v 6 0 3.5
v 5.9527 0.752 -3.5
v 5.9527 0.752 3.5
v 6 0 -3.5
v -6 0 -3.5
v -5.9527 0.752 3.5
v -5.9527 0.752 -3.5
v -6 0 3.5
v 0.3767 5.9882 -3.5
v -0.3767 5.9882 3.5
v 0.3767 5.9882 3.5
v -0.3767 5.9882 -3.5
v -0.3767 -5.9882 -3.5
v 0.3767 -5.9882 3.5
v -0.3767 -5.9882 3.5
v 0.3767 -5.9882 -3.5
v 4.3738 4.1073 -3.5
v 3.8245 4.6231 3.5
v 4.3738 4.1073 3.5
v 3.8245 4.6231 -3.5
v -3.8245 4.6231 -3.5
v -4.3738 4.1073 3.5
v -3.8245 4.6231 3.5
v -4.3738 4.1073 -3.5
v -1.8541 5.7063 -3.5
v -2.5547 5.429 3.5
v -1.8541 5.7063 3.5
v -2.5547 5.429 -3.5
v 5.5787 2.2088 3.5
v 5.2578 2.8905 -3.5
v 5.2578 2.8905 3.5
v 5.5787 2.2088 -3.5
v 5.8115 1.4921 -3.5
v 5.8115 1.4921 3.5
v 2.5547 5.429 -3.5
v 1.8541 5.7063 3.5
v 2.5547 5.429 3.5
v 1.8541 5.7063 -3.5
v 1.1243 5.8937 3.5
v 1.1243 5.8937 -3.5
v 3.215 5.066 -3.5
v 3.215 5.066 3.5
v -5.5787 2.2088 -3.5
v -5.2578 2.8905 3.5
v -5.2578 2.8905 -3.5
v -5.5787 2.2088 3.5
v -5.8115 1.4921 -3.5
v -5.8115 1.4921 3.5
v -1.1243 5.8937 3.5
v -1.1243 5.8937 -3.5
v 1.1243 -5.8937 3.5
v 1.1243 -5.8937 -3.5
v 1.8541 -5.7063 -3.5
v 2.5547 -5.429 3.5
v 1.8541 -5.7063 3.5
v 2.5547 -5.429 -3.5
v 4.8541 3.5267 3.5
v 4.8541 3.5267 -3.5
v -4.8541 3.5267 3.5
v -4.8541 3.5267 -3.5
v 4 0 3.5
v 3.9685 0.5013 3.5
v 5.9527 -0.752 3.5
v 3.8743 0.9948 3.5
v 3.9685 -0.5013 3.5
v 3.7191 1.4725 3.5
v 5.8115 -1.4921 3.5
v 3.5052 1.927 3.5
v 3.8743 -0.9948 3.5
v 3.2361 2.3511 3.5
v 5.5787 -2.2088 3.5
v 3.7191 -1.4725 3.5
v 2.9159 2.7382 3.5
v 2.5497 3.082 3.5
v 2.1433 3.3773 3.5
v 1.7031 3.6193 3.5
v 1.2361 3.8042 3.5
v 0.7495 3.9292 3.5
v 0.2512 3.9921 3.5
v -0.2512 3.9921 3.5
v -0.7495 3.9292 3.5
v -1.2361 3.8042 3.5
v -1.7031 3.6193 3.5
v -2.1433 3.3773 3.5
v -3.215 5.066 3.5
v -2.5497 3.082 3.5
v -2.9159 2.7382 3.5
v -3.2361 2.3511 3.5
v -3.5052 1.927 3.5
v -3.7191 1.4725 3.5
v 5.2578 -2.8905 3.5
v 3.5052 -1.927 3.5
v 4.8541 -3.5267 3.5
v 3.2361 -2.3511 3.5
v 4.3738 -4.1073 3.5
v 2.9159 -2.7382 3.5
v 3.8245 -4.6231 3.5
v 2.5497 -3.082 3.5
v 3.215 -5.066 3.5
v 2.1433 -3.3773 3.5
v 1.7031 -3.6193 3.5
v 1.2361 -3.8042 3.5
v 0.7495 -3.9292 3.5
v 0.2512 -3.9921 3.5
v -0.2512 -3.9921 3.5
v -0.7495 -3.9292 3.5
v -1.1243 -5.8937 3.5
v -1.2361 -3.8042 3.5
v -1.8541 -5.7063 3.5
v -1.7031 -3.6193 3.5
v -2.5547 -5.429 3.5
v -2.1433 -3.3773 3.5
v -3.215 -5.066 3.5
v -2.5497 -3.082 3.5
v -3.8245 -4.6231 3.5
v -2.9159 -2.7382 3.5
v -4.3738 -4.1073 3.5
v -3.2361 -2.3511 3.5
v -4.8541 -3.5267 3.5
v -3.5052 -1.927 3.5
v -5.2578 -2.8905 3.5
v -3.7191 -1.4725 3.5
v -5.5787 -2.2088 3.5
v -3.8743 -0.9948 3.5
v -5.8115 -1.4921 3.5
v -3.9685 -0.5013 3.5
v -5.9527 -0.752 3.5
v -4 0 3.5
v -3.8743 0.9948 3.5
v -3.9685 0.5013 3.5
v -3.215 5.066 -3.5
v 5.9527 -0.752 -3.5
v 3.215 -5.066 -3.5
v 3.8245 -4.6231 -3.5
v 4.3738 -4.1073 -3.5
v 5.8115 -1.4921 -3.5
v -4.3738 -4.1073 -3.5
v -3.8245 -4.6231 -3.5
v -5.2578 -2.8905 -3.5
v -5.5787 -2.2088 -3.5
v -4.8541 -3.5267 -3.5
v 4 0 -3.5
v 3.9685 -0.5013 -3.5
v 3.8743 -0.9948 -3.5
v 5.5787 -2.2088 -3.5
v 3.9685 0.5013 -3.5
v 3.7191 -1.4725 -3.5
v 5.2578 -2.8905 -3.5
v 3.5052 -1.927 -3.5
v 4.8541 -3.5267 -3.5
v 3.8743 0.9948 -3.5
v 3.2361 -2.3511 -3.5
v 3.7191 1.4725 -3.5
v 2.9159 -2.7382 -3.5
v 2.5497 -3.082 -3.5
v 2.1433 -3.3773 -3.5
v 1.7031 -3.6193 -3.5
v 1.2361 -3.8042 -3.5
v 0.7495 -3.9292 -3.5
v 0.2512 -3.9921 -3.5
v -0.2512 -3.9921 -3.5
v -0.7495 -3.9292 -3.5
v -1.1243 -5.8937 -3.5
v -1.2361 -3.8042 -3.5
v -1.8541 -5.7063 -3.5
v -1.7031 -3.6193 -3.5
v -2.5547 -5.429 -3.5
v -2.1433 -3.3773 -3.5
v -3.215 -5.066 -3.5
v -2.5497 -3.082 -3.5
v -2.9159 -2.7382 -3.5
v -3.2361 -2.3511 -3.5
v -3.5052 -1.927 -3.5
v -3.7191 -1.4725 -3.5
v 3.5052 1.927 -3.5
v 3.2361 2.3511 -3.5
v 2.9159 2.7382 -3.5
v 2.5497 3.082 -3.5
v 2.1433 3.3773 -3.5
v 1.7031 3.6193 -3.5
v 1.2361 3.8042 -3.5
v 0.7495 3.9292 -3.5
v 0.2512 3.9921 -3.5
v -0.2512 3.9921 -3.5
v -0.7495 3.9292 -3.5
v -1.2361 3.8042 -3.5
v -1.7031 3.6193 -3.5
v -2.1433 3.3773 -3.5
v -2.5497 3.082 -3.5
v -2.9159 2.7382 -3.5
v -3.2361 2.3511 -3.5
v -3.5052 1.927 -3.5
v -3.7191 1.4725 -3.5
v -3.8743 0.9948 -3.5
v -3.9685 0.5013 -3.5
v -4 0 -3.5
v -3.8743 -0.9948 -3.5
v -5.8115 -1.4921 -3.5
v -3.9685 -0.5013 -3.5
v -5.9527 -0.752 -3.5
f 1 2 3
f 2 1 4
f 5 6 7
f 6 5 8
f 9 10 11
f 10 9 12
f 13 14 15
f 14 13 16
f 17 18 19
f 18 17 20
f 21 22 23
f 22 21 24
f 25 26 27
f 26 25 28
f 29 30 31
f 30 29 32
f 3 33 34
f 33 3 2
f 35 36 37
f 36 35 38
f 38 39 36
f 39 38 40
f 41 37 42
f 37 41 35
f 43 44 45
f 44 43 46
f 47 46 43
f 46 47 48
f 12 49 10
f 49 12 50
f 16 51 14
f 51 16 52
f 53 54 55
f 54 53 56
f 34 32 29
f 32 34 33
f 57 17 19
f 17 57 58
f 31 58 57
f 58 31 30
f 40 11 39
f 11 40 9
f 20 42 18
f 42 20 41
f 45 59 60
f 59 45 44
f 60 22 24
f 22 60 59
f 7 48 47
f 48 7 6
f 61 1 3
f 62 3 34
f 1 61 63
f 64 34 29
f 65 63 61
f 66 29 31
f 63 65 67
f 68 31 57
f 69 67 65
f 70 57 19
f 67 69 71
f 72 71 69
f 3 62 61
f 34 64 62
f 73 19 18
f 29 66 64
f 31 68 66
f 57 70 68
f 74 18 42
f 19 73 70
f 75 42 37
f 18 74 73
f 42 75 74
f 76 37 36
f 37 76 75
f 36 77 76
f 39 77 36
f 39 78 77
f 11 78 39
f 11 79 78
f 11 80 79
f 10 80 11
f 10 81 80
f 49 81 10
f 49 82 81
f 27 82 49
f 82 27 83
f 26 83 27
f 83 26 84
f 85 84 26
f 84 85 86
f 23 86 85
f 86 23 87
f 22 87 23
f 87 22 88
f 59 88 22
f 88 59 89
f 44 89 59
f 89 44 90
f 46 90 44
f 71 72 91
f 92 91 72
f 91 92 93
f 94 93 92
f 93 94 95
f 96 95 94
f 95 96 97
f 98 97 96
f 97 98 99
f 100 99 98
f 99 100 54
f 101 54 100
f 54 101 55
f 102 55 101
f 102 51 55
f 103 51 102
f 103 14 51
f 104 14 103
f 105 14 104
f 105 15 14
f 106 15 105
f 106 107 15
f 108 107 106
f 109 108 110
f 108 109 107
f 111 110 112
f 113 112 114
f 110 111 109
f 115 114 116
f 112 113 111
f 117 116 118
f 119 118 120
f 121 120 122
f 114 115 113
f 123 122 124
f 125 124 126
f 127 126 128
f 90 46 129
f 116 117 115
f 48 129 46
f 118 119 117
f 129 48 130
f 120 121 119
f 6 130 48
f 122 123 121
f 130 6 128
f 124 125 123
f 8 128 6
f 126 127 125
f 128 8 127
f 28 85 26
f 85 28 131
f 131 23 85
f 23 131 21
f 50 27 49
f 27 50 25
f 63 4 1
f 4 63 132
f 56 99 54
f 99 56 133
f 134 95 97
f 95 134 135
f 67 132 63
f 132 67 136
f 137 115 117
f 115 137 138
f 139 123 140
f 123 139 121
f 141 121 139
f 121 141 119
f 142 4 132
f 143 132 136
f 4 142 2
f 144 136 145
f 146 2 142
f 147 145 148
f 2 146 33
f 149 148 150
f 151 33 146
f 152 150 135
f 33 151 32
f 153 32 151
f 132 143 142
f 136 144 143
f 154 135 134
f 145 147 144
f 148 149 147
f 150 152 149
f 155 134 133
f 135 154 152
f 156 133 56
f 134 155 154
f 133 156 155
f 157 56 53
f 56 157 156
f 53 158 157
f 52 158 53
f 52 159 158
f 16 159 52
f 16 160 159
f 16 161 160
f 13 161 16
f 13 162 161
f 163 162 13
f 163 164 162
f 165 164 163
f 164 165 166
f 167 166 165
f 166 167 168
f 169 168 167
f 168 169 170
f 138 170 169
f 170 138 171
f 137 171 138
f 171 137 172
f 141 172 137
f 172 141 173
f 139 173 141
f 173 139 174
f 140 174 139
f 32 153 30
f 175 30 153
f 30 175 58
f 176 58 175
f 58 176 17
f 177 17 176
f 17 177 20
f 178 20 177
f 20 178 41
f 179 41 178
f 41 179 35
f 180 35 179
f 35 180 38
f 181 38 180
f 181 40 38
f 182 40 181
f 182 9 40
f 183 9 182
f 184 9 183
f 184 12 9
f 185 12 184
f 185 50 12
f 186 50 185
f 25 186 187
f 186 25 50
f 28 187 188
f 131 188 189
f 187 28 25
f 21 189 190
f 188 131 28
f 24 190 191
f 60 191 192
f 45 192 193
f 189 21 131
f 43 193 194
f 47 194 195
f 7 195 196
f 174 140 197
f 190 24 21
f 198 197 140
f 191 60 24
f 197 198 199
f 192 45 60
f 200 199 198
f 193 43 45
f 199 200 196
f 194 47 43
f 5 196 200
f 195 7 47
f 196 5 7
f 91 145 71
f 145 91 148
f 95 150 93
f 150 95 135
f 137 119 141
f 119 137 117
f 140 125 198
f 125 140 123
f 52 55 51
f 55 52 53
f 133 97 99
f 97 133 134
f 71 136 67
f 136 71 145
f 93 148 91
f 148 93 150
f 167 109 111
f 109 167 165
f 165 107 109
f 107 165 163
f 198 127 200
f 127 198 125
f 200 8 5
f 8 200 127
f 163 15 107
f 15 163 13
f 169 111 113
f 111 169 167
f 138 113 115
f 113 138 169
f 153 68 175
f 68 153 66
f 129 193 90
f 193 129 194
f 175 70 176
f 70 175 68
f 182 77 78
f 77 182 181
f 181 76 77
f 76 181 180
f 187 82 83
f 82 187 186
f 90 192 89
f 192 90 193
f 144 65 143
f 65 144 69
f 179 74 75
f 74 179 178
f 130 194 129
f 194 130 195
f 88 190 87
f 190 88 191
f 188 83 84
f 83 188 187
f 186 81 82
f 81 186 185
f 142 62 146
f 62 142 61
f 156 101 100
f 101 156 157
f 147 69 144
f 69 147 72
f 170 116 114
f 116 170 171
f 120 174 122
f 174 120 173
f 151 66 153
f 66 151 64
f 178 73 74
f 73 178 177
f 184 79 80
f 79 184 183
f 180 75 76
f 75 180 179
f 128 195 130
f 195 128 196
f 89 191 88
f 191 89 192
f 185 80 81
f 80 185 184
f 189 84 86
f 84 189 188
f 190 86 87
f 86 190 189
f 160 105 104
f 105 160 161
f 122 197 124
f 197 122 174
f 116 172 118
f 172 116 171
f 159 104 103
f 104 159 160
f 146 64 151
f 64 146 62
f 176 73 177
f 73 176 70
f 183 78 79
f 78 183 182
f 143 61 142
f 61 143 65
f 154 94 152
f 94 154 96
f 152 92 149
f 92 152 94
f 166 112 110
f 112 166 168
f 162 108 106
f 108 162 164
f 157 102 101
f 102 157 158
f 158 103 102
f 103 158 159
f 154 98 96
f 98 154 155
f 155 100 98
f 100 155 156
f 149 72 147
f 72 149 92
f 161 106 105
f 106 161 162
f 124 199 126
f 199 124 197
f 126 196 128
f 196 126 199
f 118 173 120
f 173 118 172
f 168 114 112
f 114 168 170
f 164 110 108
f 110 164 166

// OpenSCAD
$fn = 50;


difference() {
	union() {
		translate(v = [0, 0, -3.5000000000]) {
			cylinder(h = 7, r = 6.0000000000);
		}
	}
	union() {
		translate(v = [0, 0, -100.0000000000]) {
			cylinder(h = 200, r = 4);
		}
	}
}
